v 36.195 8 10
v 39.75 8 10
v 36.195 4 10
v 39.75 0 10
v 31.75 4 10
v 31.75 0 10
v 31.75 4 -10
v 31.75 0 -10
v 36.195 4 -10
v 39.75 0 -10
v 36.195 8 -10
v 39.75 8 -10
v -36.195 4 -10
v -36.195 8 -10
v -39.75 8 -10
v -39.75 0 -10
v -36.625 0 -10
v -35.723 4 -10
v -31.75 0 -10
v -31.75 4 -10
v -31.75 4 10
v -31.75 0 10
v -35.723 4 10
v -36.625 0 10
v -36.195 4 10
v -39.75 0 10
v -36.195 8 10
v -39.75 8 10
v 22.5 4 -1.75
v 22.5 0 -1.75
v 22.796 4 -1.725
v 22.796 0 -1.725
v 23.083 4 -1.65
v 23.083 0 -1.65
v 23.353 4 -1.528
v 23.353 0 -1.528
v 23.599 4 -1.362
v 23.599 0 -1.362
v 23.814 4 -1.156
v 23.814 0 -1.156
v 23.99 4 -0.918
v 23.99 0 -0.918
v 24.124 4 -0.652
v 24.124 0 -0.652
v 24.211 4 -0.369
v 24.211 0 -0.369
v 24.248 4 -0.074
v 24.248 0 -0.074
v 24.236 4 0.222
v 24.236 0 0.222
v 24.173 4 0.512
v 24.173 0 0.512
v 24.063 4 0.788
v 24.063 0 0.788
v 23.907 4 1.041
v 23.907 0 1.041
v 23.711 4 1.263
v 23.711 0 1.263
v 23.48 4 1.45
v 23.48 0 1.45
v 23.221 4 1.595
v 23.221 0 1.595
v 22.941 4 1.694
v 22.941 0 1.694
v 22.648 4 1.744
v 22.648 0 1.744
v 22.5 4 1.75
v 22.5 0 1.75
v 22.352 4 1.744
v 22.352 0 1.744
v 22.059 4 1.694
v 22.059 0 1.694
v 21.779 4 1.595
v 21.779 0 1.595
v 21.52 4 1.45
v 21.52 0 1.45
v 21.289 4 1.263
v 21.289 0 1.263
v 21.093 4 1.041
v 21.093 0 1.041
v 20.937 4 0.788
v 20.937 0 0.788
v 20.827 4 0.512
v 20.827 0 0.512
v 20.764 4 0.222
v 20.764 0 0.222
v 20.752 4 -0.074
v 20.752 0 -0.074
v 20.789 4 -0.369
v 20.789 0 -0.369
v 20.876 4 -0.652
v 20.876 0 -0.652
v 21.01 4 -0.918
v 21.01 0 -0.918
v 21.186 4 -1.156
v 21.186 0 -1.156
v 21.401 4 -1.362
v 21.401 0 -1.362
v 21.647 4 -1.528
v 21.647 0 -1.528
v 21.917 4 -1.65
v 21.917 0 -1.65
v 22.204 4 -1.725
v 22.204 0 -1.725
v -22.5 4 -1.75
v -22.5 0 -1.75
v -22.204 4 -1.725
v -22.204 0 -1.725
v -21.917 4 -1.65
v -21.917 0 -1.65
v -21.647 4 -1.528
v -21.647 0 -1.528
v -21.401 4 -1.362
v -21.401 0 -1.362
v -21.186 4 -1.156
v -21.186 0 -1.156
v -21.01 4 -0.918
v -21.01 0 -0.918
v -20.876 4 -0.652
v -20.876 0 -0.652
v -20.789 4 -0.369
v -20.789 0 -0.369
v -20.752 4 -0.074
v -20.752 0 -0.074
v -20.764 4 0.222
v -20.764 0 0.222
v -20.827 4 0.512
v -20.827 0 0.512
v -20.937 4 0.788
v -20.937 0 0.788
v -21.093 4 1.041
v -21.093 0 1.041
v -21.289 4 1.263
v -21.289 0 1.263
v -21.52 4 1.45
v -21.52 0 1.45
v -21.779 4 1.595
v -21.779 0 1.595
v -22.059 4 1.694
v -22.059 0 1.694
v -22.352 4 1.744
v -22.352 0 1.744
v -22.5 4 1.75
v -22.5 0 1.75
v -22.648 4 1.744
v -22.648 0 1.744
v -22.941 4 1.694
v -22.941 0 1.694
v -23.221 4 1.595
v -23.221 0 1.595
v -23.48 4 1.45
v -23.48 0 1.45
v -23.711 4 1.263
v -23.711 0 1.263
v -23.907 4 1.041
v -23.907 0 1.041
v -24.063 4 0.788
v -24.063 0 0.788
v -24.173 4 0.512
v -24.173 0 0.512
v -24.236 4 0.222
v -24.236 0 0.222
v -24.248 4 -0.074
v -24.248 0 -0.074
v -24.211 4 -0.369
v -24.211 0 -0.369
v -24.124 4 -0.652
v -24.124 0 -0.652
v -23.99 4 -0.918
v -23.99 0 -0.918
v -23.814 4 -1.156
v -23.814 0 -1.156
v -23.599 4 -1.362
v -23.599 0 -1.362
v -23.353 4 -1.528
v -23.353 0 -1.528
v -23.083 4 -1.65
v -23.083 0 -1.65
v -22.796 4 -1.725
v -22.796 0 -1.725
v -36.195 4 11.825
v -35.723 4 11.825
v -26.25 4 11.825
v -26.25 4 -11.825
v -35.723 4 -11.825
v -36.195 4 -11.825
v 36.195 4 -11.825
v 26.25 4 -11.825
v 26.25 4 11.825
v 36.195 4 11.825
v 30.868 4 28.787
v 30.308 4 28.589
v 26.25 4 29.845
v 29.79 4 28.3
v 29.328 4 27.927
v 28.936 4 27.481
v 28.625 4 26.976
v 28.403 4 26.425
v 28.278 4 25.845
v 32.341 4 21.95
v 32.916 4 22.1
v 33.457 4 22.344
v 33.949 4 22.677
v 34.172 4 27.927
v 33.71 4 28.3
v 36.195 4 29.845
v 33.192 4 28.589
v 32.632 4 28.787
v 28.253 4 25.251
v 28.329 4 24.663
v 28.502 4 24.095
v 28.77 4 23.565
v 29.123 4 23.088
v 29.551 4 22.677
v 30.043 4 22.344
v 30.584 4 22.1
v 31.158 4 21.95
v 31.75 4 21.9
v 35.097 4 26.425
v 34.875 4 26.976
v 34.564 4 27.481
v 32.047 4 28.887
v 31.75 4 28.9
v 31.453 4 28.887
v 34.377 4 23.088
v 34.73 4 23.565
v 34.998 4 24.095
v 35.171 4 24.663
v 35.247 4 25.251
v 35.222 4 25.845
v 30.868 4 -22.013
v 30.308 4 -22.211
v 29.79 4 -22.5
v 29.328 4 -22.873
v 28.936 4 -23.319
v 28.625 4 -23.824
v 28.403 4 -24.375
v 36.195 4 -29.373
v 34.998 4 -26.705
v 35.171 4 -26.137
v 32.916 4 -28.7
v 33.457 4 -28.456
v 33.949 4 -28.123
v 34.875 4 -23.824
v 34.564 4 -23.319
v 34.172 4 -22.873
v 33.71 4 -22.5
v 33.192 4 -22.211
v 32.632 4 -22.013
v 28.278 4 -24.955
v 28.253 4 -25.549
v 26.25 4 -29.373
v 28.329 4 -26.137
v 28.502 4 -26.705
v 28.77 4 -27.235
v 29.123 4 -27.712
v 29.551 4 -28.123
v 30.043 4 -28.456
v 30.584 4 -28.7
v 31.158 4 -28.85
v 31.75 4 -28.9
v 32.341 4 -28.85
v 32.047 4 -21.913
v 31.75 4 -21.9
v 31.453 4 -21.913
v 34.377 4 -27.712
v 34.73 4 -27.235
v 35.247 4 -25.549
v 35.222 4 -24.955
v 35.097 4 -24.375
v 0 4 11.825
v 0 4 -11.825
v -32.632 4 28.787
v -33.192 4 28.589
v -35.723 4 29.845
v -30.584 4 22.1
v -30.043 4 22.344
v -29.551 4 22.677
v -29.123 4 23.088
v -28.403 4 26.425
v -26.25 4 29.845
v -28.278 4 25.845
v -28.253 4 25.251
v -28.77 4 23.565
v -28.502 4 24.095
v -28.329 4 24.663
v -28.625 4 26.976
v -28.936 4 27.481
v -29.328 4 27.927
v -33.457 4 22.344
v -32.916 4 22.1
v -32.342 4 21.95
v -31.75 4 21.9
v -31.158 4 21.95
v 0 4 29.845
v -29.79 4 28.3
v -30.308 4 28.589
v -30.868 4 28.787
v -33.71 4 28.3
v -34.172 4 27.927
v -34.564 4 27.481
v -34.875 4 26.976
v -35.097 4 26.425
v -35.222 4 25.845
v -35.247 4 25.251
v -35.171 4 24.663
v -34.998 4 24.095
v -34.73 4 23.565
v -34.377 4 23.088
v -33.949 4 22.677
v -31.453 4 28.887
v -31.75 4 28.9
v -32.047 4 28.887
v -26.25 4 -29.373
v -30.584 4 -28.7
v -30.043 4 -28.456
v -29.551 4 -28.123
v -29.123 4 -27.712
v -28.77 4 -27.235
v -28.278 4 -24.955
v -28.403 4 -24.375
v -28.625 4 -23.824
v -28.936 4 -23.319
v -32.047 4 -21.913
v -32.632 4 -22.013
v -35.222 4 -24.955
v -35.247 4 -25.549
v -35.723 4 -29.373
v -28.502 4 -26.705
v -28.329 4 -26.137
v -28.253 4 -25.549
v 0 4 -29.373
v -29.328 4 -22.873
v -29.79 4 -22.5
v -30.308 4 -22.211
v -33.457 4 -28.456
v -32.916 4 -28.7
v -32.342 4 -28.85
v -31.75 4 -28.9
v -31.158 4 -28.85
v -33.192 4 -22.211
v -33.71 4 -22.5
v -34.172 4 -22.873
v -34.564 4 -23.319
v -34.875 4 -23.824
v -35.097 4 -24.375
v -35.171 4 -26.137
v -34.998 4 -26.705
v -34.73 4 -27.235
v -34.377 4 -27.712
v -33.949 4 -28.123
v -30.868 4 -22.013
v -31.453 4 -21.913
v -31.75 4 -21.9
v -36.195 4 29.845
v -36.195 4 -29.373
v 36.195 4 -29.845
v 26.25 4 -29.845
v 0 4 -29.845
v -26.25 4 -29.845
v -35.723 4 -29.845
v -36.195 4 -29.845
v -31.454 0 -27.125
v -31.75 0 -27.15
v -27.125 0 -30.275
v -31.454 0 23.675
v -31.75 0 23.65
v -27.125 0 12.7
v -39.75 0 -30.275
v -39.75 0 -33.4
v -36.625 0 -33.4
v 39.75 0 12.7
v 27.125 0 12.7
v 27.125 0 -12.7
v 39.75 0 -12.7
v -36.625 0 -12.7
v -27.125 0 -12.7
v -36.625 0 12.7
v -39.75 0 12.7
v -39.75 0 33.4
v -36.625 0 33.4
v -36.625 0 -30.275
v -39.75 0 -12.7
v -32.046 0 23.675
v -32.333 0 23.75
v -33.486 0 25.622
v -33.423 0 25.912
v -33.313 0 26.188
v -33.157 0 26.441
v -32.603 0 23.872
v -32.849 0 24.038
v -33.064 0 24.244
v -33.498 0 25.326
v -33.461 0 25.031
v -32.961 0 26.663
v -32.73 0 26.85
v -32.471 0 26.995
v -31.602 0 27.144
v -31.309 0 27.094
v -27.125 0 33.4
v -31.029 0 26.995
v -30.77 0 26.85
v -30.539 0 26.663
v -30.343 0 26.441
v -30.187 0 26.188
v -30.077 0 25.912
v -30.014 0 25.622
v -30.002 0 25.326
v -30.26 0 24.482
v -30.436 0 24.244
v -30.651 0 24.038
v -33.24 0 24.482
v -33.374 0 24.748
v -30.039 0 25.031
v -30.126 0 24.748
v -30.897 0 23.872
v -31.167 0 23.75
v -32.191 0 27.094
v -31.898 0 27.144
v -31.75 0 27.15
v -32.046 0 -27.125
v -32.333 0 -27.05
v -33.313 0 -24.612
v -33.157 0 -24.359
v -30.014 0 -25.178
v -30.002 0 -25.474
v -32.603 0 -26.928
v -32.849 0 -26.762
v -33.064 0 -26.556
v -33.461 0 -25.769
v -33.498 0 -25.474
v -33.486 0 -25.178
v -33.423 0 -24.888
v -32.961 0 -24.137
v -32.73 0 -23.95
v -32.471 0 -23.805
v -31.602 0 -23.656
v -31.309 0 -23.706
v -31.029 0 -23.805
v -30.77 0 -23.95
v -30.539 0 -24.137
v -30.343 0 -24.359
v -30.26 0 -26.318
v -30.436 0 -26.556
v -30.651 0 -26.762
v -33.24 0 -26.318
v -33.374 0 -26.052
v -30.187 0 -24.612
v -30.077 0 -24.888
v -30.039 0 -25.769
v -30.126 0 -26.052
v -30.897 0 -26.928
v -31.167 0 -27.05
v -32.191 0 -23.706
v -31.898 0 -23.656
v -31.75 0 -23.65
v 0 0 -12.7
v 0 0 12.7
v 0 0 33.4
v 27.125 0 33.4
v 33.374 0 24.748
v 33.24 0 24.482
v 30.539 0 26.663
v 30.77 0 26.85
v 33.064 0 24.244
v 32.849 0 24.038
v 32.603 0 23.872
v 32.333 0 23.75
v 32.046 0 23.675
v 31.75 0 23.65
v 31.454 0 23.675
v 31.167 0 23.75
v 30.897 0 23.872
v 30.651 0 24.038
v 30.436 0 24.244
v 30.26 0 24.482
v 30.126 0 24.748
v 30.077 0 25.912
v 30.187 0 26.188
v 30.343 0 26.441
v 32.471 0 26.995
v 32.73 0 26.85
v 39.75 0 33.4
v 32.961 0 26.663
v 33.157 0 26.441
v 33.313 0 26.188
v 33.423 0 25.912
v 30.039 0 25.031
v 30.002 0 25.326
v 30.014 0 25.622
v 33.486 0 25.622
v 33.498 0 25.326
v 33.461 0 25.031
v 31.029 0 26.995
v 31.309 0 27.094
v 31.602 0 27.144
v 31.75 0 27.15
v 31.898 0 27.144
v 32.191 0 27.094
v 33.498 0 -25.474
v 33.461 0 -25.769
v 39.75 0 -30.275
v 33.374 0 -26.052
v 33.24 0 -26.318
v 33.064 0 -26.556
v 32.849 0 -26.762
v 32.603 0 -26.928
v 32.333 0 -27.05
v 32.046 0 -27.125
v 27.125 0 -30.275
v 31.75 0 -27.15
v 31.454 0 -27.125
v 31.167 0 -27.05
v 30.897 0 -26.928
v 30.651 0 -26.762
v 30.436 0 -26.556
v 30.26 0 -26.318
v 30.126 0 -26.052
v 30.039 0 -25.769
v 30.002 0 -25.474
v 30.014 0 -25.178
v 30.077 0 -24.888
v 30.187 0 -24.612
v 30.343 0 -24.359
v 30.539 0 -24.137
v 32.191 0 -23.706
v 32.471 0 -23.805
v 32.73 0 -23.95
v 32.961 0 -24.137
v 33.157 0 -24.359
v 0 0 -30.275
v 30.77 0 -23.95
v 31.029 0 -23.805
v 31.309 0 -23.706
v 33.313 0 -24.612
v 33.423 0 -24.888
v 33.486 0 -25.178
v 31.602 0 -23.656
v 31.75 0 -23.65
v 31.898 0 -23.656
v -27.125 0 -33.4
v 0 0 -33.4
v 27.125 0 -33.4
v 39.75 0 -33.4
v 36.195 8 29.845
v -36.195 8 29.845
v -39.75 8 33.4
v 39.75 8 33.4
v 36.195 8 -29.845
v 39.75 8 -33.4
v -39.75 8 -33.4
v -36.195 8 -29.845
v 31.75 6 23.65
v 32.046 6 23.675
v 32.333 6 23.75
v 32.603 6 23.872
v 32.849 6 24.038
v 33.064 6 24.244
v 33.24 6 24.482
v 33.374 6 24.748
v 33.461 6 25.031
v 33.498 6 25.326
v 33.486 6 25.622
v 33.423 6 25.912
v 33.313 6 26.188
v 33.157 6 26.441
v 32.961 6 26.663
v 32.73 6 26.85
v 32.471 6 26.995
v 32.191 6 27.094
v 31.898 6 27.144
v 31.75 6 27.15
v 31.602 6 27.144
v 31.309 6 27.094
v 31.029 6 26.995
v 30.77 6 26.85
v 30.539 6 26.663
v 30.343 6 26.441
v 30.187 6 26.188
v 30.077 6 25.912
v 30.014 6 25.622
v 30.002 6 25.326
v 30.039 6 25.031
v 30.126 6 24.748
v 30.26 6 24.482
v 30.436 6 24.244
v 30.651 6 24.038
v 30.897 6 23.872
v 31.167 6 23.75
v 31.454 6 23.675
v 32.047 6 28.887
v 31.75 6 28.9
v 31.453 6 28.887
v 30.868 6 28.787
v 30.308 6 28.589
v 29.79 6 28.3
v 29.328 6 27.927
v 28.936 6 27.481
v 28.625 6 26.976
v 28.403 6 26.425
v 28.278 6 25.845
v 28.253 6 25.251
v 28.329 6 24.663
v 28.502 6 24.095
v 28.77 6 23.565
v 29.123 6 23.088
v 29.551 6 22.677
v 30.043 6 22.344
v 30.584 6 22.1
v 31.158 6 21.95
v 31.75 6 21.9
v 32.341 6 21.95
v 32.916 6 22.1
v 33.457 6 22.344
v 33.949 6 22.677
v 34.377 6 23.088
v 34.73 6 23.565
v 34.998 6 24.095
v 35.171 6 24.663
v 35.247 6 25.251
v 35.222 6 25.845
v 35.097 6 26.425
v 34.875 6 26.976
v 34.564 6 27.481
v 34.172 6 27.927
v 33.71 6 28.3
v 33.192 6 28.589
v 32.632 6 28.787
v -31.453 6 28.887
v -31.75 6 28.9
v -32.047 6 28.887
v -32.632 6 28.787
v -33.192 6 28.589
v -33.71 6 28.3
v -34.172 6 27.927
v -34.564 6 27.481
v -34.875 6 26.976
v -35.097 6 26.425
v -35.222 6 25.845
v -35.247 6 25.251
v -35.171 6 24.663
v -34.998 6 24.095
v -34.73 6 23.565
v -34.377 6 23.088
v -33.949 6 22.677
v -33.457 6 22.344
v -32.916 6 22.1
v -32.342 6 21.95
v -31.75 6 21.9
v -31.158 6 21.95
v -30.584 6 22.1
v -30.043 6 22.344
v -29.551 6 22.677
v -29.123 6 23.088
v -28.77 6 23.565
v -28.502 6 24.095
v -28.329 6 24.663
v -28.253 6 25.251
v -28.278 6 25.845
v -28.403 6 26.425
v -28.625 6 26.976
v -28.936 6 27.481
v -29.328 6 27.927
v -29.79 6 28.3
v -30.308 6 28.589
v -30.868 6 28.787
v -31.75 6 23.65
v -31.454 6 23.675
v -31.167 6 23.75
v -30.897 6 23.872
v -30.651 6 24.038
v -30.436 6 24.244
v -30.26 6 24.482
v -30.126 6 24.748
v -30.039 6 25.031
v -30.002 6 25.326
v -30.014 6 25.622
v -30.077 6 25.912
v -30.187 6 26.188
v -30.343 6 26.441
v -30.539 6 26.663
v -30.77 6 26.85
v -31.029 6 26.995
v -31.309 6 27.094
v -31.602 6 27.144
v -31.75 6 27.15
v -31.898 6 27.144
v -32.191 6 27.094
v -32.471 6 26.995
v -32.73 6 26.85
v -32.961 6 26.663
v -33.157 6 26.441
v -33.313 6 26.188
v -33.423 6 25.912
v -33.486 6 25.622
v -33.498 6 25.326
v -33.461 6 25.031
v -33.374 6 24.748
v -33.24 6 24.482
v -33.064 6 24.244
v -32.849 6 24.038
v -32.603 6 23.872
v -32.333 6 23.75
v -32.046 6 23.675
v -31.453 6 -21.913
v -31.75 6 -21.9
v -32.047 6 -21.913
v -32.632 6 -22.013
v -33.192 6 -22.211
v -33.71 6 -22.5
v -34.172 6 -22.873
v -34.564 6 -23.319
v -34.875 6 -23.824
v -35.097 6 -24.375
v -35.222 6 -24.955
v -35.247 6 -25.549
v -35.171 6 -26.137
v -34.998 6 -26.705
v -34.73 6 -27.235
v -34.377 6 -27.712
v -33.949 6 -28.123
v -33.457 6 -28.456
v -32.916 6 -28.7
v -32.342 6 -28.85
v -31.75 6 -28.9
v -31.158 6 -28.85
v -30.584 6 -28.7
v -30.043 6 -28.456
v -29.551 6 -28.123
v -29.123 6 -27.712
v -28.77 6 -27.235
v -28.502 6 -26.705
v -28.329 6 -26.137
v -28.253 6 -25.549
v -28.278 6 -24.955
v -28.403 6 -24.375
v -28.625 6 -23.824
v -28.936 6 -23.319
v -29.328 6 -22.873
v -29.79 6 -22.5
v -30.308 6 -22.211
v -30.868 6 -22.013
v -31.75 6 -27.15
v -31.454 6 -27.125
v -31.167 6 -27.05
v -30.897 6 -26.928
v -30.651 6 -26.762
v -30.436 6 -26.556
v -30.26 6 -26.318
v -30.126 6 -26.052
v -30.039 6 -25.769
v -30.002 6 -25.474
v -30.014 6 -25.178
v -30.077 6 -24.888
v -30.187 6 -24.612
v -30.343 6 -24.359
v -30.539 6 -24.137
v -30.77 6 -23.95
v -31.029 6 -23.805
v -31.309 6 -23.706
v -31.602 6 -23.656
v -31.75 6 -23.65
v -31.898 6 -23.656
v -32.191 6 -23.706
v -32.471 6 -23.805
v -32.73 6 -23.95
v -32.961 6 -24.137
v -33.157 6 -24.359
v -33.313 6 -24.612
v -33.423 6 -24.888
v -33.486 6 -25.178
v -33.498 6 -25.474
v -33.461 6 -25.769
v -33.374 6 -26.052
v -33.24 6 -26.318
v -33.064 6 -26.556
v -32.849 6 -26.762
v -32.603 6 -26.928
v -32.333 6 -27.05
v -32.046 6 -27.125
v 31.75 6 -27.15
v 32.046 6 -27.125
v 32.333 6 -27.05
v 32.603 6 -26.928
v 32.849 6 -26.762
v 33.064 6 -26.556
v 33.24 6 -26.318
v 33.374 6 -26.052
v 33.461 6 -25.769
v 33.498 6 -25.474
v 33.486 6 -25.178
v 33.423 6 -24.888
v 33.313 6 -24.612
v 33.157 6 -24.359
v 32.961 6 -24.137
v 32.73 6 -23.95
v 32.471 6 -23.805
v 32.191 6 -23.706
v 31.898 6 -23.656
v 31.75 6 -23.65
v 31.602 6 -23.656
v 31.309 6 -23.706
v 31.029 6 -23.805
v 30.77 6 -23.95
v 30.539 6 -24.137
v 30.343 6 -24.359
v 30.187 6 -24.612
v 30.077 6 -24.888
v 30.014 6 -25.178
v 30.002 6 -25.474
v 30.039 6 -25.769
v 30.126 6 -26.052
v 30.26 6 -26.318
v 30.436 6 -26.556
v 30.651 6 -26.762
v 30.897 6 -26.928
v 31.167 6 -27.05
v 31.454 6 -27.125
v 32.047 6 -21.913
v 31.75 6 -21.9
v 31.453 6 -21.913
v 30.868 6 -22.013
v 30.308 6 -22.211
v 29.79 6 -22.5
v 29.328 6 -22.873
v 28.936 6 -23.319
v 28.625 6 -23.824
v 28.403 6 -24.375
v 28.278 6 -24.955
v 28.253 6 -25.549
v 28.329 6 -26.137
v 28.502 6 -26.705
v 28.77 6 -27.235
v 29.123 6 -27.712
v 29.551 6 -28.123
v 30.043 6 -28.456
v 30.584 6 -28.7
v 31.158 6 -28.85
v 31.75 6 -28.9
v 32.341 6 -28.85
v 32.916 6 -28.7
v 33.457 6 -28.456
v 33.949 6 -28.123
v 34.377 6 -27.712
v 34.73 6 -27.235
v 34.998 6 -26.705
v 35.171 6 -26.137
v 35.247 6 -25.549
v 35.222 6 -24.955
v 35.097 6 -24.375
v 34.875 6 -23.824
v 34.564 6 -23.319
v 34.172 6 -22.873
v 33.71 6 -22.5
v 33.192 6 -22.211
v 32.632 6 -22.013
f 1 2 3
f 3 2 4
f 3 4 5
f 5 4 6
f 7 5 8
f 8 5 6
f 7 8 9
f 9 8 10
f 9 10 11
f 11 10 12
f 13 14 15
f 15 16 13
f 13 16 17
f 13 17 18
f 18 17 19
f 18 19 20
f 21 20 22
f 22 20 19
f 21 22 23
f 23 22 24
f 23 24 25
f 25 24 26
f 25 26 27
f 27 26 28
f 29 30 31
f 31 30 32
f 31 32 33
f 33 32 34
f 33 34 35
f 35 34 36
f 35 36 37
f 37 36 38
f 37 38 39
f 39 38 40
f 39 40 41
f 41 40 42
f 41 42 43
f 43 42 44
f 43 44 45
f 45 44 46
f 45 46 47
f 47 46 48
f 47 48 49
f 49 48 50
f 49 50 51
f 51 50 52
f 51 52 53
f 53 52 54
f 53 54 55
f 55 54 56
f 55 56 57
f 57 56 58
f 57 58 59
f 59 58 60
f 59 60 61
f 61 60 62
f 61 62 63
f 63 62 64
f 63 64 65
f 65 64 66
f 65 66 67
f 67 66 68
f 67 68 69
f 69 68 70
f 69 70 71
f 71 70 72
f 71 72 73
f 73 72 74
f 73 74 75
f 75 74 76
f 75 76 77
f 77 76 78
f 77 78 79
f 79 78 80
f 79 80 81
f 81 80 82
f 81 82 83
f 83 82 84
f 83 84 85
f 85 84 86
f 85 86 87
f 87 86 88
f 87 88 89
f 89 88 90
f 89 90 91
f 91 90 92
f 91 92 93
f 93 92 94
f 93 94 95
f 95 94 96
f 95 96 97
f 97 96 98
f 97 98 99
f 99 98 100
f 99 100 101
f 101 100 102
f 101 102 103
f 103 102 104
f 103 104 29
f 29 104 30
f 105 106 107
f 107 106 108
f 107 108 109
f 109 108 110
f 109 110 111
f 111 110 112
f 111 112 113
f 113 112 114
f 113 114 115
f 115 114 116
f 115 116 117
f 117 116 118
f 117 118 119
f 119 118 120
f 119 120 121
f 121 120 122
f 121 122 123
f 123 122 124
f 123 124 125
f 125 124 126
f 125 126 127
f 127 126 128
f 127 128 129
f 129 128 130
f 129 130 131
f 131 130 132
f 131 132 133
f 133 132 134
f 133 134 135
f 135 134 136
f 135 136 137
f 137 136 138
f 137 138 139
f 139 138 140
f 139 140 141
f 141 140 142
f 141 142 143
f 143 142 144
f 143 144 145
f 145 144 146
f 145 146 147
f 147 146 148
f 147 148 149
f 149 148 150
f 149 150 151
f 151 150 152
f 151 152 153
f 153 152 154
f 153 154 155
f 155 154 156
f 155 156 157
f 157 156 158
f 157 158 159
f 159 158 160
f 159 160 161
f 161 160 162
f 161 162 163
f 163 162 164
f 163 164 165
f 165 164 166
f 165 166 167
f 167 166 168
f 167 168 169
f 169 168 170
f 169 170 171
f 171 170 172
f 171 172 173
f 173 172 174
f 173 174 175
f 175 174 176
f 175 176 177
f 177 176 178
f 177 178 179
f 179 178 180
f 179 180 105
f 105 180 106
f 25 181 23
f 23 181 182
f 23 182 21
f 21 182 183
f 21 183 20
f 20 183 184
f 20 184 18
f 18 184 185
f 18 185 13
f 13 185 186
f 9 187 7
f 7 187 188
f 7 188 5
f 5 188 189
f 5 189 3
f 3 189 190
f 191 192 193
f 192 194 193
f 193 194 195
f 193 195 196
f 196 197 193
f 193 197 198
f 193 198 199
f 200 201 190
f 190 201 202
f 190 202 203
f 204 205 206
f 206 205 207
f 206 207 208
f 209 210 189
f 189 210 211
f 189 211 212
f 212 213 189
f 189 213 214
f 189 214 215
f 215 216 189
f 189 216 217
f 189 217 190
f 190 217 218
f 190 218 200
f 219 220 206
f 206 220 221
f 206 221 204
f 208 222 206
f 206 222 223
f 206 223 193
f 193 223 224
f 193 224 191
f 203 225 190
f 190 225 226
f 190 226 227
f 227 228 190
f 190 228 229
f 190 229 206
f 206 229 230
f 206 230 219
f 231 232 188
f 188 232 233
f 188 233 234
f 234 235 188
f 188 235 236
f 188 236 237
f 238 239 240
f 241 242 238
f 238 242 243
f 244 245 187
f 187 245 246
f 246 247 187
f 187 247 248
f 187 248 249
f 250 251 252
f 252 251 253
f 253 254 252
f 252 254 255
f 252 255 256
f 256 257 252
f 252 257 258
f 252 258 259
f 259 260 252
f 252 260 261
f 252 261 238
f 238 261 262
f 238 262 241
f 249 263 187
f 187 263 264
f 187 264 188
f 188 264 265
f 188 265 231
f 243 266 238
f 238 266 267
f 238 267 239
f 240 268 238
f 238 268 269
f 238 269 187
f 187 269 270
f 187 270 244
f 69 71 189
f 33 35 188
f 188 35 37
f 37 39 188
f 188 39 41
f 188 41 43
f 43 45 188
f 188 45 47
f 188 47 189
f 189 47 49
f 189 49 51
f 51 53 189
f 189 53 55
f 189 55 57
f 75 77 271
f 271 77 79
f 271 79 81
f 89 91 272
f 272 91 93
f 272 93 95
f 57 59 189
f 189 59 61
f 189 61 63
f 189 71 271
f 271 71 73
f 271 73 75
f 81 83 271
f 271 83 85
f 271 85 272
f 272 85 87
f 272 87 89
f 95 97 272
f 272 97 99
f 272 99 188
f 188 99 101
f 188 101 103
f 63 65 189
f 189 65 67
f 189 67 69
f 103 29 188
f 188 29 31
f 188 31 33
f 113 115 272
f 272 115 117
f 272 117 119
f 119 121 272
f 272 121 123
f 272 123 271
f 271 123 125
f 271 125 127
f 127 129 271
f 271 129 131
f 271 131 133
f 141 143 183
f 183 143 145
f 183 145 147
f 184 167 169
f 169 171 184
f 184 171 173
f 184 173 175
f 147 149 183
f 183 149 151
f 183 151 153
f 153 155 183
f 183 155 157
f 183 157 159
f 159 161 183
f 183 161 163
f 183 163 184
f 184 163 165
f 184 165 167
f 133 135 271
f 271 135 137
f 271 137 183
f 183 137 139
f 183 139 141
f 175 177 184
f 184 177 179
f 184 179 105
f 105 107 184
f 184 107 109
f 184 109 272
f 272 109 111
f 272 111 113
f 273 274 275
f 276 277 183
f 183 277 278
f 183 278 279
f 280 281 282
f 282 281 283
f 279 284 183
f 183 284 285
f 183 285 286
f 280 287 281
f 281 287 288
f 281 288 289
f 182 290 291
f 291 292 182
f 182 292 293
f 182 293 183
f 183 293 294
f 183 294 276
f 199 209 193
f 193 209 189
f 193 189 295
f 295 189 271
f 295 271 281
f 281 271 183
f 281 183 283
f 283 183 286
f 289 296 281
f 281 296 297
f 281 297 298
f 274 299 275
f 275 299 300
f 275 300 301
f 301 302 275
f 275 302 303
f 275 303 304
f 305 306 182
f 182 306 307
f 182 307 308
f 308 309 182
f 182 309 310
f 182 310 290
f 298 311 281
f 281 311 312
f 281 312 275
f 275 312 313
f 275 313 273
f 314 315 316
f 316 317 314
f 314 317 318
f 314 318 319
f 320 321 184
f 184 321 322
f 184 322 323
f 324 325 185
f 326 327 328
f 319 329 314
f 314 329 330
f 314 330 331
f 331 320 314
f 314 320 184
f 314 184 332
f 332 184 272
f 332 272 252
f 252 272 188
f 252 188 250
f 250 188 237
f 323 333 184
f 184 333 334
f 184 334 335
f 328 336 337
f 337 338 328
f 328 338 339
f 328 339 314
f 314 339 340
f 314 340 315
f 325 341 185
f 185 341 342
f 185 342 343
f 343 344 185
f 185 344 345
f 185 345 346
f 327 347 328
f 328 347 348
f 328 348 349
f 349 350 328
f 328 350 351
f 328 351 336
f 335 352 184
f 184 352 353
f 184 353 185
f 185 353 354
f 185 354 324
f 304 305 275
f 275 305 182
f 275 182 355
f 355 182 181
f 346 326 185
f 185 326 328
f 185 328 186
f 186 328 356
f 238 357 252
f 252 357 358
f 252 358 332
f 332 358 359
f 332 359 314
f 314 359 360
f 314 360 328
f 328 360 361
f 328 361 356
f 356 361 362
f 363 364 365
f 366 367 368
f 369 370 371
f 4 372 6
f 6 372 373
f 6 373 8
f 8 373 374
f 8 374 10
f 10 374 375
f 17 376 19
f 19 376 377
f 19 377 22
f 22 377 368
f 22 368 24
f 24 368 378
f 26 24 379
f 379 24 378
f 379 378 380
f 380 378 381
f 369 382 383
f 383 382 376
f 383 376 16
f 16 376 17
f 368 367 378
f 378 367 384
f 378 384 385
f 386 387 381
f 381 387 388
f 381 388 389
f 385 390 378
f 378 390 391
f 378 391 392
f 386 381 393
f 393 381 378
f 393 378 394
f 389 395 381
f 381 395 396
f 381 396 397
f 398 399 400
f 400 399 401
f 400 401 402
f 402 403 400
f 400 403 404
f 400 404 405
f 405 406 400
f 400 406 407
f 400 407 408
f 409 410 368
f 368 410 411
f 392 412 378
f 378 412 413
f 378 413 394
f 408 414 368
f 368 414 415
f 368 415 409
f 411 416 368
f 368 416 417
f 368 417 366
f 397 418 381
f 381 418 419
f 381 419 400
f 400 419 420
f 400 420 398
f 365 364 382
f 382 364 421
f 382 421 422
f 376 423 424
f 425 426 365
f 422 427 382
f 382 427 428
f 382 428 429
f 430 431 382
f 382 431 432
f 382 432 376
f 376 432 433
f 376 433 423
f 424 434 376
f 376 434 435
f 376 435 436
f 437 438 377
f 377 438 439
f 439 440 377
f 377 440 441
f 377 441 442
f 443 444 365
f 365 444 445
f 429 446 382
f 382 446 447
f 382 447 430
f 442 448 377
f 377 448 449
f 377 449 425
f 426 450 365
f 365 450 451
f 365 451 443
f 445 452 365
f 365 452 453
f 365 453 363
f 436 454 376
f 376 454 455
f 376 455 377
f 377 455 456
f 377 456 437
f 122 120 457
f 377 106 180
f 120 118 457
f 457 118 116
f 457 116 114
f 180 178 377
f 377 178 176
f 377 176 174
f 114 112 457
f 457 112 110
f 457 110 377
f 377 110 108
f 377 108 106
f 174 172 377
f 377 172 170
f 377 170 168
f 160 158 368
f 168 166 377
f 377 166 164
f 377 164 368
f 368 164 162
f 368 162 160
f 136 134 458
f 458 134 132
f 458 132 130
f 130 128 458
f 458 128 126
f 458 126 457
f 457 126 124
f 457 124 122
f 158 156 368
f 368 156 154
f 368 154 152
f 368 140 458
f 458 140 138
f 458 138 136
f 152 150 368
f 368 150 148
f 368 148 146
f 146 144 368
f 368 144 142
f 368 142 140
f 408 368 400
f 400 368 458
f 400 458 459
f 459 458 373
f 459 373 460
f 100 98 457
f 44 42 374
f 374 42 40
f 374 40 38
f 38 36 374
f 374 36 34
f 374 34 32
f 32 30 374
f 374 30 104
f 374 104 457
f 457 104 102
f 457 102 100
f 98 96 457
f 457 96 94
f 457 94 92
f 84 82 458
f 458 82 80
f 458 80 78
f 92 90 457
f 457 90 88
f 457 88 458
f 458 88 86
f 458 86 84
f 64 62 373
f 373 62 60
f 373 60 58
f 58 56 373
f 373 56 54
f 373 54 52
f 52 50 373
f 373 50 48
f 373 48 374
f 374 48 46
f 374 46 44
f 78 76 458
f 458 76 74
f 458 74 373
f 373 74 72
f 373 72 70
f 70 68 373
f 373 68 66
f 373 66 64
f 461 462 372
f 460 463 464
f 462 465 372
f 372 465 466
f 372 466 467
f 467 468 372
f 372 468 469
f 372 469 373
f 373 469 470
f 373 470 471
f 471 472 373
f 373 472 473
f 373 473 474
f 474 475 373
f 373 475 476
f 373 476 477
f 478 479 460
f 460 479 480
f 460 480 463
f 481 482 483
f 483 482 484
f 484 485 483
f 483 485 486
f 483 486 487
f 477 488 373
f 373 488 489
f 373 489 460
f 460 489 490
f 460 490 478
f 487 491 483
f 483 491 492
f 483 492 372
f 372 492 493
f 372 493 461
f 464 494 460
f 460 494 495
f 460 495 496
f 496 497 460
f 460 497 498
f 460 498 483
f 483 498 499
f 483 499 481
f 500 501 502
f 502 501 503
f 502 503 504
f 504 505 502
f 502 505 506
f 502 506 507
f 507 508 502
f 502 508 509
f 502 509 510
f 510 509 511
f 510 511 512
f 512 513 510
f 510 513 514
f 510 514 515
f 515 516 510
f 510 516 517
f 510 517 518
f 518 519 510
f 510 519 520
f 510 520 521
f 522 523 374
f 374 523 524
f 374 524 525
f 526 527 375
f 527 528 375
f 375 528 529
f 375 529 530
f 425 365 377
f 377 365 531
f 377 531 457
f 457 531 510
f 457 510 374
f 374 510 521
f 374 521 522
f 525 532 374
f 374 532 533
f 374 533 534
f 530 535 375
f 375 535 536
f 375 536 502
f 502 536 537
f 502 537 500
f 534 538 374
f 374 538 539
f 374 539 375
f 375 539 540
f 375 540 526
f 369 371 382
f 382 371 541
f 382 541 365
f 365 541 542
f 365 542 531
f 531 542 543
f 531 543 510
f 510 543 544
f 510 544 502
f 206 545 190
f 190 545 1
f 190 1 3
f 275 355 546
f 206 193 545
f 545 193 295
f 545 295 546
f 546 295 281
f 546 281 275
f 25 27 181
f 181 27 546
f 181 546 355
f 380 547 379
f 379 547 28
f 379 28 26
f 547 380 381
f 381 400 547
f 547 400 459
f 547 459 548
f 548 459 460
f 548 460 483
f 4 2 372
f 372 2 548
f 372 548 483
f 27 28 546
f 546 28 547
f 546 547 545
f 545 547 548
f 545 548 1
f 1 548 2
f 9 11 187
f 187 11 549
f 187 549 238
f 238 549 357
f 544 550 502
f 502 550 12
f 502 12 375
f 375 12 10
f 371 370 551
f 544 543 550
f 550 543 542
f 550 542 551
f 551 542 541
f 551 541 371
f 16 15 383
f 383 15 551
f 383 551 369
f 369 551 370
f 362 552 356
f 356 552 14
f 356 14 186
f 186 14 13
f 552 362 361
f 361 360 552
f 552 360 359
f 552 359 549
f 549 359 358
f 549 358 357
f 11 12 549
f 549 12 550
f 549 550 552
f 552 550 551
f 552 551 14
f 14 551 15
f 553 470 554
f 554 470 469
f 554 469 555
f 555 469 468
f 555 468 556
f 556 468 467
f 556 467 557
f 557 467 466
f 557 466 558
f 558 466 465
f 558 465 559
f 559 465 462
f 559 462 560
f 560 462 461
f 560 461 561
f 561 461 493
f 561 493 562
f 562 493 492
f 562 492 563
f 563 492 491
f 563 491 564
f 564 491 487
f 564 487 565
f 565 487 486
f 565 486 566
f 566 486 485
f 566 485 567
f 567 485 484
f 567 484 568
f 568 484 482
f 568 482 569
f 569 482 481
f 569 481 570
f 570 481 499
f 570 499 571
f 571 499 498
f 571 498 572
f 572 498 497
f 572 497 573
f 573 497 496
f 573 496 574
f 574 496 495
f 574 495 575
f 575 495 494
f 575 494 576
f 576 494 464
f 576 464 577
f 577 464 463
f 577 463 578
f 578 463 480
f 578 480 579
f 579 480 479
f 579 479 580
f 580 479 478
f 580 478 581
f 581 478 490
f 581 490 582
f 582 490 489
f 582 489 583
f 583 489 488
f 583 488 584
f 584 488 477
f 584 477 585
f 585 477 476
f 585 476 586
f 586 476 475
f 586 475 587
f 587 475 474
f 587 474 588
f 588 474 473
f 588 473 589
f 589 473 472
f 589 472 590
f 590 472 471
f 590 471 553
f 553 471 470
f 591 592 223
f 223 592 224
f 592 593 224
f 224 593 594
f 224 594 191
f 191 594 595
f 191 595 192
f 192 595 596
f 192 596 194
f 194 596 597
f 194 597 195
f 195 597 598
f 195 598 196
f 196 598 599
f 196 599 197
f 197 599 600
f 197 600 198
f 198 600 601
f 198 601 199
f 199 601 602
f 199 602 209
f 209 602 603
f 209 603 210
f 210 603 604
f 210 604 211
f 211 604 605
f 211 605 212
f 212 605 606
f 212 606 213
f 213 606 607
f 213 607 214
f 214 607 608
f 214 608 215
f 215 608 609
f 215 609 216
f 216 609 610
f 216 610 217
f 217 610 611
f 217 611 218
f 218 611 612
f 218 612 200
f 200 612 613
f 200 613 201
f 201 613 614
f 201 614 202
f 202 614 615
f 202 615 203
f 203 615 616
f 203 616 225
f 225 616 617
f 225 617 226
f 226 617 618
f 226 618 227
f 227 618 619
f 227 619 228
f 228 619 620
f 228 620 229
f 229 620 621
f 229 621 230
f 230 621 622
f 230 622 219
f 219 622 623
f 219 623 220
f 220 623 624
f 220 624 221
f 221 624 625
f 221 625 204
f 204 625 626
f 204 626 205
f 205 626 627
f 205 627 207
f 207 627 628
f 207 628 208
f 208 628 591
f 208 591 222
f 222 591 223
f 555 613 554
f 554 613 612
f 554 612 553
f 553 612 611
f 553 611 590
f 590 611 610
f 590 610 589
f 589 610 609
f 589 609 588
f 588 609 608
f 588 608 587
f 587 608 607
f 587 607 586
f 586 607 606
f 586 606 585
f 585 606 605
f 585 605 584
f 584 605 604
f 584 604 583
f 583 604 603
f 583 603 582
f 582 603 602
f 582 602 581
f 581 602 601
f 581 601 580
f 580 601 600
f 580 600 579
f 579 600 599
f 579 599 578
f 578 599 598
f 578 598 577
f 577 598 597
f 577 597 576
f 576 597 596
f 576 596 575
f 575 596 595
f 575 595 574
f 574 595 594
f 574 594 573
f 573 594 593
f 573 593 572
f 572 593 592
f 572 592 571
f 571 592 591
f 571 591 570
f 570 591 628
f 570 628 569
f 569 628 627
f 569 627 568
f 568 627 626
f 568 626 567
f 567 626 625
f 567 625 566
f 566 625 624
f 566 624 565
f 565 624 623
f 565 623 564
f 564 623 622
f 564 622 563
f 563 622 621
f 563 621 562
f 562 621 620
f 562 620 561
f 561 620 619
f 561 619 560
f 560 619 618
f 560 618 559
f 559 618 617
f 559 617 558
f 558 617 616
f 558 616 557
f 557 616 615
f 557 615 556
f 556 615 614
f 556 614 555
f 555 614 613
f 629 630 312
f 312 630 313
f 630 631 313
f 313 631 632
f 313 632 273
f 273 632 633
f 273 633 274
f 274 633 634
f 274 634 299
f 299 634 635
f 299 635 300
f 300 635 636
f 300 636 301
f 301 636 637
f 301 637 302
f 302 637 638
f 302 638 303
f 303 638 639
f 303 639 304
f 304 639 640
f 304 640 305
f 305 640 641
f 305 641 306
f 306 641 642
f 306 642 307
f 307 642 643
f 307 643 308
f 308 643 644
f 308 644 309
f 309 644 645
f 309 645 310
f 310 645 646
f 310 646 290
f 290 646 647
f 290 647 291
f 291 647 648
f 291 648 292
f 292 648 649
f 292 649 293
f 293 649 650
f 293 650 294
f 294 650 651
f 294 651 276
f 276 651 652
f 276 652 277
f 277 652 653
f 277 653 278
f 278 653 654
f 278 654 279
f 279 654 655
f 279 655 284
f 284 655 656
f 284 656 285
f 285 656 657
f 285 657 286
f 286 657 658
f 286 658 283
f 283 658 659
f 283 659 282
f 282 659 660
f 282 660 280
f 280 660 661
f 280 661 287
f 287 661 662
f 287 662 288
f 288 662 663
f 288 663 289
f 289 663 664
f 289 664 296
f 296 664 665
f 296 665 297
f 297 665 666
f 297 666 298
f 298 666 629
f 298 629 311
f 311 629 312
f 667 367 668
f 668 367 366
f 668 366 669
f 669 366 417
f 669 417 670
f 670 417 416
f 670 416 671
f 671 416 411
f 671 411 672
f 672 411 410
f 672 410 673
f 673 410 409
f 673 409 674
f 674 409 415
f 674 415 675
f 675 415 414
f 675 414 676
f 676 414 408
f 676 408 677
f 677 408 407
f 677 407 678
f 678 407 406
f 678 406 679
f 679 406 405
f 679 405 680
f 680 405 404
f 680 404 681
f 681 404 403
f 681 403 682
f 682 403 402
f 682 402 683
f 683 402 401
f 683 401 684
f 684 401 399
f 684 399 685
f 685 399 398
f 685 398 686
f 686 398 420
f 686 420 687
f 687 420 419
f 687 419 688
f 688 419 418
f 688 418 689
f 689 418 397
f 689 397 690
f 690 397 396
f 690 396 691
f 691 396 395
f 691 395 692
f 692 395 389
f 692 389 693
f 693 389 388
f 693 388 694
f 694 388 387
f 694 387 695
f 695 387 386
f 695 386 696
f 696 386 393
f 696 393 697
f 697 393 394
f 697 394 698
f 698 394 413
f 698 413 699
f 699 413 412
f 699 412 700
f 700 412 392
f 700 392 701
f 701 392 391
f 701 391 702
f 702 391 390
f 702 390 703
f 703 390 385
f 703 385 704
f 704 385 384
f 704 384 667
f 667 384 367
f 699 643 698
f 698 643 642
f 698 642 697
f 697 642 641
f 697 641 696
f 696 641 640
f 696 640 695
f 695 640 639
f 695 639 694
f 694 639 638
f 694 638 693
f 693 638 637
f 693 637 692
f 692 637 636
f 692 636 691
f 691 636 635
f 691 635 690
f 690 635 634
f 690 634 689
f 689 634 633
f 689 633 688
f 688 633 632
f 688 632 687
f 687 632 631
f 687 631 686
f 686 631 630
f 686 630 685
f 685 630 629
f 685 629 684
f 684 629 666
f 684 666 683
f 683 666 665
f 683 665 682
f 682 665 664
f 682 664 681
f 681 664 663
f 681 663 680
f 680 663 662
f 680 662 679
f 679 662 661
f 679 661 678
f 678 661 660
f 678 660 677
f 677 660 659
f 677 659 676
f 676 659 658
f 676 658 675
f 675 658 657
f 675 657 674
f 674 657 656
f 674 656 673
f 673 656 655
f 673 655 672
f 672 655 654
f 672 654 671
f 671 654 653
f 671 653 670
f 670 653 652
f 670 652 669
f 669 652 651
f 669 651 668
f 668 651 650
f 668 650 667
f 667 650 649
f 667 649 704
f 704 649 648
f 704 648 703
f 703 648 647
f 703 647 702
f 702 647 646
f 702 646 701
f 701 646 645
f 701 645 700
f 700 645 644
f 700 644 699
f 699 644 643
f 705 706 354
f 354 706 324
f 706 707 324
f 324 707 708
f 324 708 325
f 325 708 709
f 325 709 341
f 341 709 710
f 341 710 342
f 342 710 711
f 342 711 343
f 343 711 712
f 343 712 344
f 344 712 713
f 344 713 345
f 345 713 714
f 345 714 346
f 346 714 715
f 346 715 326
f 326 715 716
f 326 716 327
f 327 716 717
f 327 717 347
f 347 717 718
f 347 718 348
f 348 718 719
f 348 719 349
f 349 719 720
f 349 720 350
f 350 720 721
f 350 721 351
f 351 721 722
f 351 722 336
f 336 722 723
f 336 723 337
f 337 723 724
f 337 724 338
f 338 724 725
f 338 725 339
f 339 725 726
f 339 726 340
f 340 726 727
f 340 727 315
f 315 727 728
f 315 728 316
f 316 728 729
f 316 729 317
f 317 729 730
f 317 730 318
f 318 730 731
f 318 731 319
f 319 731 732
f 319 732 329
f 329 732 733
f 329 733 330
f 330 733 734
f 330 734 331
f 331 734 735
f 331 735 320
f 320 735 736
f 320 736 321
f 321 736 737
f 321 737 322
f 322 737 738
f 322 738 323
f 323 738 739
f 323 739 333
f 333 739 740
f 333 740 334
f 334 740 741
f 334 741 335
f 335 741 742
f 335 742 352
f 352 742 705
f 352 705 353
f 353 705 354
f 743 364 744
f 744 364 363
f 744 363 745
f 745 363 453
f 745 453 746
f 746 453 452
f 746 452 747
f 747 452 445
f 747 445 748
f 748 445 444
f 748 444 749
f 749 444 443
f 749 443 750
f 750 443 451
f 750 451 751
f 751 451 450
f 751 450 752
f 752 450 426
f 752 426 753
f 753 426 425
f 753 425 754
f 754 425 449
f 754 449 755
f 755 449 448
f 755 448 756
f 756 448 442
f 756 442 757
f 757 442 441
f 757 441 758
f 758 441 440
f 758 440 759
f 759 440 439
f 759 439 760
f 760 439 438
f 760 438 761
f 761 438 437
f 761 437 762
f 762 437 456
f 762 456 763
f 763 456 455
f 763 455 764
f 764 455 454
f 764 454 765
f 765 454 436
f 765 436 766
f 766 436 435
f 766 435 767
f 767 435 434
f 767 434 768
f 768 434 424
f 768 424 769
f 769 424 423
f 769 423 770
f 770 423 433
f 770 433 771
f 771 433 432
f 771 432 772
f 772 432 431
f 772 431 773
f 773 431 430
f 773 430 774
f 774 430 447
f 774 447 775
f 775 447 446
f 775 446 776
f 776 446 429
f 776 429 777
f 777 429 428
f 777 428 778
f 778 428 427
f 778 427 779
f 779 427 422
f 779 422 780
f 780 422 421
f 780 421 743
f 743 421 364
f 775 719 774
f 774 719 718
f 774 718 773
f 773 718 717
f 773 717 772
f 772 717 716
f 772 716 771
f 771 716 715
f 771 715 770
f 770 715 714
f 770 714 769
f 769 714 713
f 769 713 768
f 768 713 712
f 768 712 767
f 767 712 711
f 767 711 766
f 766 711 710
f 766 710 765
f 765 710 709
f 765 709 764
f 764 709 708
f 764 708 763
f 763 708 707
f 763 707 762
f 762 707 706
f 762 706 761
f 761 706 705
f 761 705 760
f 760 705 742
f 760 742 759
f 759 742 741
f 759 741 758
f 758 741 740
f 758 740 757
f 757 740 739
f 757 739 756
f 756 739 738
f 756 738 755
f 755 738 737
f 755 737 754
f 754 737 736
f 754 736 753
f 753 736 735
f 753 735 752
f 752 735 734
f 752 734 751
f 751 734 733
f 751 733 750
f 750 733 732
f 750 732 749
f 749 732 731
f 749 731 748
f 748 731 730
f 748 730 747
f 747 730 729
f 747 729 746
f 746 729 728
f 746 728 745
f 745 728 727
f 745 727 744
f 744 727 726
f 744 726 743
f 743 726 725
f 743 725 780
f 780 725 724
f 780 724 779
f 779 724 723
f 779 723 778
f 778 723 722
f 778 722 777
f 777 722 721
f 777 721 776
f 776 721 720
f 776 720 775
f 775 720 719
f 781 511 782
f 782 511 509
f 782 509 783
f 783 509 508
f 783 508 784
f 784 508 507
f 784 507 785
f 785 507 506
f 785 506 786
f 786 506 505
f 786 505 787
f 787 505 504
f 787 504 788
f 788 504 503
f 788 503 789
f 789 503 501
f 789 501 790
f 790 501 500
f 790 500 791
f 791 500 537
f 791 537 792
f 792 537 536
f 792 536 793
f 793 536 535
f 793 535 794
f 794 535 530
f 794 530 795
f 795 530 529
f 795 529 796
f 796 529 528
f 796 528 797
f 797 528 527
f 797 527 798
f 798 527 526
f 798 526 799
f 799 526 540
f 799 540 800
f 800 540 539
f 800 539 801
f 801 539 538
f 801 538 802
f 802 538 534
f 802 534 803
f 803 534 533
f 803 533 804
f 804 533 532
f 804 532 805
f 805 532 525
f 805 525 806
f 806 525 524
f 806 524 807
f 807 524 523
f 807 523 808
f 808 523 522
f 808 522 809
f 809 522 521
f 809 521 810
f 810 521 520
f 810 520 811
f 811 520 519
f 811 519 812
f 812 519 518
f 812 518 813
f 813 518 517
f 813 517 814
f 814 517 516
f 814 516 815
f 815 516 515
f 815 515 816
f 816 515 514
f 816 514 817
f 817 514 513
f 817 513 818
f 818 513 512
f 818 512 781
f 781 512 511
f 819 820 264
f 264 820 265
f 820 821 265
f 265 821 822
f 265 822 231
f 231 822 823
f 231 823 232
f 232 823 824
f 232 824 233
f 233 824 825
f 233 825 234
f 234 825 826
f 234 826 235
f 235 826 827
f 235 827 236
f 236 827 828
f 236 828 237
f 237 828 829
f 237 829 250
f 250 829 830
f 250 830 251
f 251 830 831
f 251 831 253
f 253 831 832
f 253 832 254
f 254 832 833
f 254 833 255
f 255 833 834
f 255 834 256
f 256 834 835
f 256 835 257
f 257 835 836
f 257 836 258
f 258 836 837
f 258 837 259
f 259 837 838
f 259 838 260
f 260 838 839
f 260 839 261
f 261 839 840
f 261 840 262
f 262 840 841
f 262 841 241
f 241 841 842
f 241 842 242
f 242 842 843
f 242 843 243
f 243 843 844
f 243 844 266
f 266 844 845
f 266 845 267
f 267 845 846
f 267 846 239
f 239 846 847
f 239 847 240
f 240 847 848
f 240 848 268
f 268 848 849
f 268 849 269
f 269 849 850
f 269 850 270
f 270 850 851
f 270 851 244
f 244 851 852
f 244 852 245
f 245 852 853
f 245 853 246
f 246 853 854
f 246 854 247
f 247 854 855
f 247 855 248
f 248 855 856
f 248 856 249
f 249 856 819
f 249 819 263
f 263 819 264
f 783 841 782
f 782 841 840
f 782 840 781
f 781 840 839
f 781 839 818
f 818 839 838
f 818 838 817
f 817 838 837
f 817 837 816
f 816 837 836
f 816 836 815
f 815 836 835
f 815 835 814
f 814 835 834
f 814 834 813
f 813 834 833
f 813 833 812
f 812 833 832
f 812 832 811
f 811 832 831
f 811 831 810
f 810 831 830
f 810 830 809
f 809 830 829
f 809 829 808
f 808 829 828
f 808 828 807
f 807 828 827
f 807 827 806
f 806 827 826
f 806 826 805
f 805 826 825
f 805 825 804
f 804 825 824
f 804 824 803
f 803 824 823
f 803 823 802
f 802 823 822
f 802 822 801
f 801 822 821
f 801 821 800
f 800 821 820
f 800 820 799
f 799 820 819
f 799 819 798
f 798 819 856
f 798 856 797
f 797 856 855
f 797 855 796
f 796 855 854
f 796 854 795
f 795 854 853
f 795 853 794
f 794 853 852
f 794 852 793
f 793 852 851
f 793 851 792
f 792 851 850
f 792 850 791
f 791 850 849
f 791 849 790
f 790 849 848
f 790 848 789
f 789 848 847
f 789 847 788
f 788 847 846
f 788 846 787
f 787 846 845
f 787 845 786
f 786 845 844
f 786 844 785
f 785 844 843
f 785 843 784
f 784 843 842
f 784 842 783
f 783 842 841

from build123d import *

# Parameters (mm, degrees)
SKETCH1_R           = 1.75
SKETCH1_R_2         = 3.5
BOSS_EXTRUDE1_DEPTH = 4
BOSS_EXTRUDE2_DEPTH = 8
SKETCH1_4_R         = 3.5
SKETCH1_4_R_2       = 1.75
BOSS_EXTRUDE3_DEPTH = 6


with BuildPart() as part:
    # Sketch1 → Boss-Extrude1 (new body)
    with BuildSketch(Plane(origin=(0, 0, 0), x_dir=(1, 0, 0), z_dir=(0, 1, 0))):
        Polygon((31.75, -10), (31.75, 10), (36.195, 10), (36.195, 29.845), (-36.195, 29.845), (-36.195, 10), (-31.75, 10), (-31.75, -10), (-36.195, -10), (-36.195, -29.845), (36.195, -29.845), (36.195, -10), align=None)
        with Locations((-22.5, 0)):
            Circle(SKETCH1_R, mode=Mode.SUBTRACT)
        with Locations((22.5, 0)):
            Circle(SKETCH1_R, mode=Mode.SUBTRACT)
        with Locations((31.75, -25.4)):
            Circle(SKETCH1_R_2, mode=Mode.SUBTRACT)
        with Locations((-31.75, -25.4)):
            Circle(SKETCH1_R_2, mode=Mode.SUBTRACT)
        with Locations((-31.75, 25.4)):
            Circle(SKETCH1_R_2, mode=Mode.SUBTRACT)
        with Locations((31.75, 25.4)):
            Circle(SKETCH1_R_2, mode=Mode.SUBTRACT)
    extrude(amount=BOSS_EXTRUDE1_DEPTH)

    # Sketch1<3> → Boss-Extrude2 (add)
    with BuildSketch(Plane(origin=(0, 0, 0), x_dir=(1, 0, 0), z_dir=(0, 1, 0))):
        Polygon((39.75, -33.4), (39.75, -10), (36.195, -10), (36.195, -29.845), (-36.195, -29.845), (-36.195, -10), (-39.75, -10), (-39.75, -33.4), align=None)
        Polygon((36.195, 10), (39.75, 10), (39.75, 33.4), (-39.75, 33.4), (-39.75, 10), (-36.195, 10), (-36.195, 29.845), (36.195, 29.845), align=None)
    extrude(amount=BOSS_EXTRUDE2_DEPTH)

    # Sketch1<4> → Boss-Extrude3 (add)
    # profile 1 of 4: a face of its own
    with BuildSketch(Plane(origin=(0, 0, 0), x_dir=(1, 0, 0), z_dir=(0, 1, 0))):
        with Locations((31.75, -25.4)):
            Circle(SKETCH1_4_R)
        with Locations((31.75, -25.4)):
            Circle(SKETCH1_4_R_2, mode=Mode.SUBTRACT)
    # profile 2 of 4: a face of its own
    with BuildSketch(Plane(origin=(0, 0, 0), x_dir=(1, 0, 0), z_dir=(0, 1, 0))):
        with Locations((31.75, 25.4)):
            Circle(SKETCH1_4_R)
        with Locations((31.75, 25.4)):
            Circle(SKETCH1_4_R_2, mode=Mode.SUBTRACT)
    # profile 3 of 4: a face of its own
    with BuildSketch(Plane(origin=(0, 0, 0), x_dir=(1, 0, 0), z_dir=(0, 1, 0))):
        with Locations((-31.75, -25.4)):
            Circle(SKETCH1_4_R)
        with Locations((-31.75, -25.4)):
            Circle(SKETCH1_4_R_2, mode=Mode.SUBTRACT)
    # profile 4 of 4: a face of its own
    with BuildSketch(Plane(origin=(0, 0, 0), x_dir=(1, 0, 0), z_dir=(0, 1, 0))):
        with Locations((-31.75, 25.4)):
            Circle(SKETCH1_4_R)
        with Locations((-31.75, 25.4)):
            Circle(SKETCH1_4_R_2, mode=Mode.SUBTRACT)
    extrude(amount=BOSS_EXTRUDE3_DEPTH)


solid = part.part
